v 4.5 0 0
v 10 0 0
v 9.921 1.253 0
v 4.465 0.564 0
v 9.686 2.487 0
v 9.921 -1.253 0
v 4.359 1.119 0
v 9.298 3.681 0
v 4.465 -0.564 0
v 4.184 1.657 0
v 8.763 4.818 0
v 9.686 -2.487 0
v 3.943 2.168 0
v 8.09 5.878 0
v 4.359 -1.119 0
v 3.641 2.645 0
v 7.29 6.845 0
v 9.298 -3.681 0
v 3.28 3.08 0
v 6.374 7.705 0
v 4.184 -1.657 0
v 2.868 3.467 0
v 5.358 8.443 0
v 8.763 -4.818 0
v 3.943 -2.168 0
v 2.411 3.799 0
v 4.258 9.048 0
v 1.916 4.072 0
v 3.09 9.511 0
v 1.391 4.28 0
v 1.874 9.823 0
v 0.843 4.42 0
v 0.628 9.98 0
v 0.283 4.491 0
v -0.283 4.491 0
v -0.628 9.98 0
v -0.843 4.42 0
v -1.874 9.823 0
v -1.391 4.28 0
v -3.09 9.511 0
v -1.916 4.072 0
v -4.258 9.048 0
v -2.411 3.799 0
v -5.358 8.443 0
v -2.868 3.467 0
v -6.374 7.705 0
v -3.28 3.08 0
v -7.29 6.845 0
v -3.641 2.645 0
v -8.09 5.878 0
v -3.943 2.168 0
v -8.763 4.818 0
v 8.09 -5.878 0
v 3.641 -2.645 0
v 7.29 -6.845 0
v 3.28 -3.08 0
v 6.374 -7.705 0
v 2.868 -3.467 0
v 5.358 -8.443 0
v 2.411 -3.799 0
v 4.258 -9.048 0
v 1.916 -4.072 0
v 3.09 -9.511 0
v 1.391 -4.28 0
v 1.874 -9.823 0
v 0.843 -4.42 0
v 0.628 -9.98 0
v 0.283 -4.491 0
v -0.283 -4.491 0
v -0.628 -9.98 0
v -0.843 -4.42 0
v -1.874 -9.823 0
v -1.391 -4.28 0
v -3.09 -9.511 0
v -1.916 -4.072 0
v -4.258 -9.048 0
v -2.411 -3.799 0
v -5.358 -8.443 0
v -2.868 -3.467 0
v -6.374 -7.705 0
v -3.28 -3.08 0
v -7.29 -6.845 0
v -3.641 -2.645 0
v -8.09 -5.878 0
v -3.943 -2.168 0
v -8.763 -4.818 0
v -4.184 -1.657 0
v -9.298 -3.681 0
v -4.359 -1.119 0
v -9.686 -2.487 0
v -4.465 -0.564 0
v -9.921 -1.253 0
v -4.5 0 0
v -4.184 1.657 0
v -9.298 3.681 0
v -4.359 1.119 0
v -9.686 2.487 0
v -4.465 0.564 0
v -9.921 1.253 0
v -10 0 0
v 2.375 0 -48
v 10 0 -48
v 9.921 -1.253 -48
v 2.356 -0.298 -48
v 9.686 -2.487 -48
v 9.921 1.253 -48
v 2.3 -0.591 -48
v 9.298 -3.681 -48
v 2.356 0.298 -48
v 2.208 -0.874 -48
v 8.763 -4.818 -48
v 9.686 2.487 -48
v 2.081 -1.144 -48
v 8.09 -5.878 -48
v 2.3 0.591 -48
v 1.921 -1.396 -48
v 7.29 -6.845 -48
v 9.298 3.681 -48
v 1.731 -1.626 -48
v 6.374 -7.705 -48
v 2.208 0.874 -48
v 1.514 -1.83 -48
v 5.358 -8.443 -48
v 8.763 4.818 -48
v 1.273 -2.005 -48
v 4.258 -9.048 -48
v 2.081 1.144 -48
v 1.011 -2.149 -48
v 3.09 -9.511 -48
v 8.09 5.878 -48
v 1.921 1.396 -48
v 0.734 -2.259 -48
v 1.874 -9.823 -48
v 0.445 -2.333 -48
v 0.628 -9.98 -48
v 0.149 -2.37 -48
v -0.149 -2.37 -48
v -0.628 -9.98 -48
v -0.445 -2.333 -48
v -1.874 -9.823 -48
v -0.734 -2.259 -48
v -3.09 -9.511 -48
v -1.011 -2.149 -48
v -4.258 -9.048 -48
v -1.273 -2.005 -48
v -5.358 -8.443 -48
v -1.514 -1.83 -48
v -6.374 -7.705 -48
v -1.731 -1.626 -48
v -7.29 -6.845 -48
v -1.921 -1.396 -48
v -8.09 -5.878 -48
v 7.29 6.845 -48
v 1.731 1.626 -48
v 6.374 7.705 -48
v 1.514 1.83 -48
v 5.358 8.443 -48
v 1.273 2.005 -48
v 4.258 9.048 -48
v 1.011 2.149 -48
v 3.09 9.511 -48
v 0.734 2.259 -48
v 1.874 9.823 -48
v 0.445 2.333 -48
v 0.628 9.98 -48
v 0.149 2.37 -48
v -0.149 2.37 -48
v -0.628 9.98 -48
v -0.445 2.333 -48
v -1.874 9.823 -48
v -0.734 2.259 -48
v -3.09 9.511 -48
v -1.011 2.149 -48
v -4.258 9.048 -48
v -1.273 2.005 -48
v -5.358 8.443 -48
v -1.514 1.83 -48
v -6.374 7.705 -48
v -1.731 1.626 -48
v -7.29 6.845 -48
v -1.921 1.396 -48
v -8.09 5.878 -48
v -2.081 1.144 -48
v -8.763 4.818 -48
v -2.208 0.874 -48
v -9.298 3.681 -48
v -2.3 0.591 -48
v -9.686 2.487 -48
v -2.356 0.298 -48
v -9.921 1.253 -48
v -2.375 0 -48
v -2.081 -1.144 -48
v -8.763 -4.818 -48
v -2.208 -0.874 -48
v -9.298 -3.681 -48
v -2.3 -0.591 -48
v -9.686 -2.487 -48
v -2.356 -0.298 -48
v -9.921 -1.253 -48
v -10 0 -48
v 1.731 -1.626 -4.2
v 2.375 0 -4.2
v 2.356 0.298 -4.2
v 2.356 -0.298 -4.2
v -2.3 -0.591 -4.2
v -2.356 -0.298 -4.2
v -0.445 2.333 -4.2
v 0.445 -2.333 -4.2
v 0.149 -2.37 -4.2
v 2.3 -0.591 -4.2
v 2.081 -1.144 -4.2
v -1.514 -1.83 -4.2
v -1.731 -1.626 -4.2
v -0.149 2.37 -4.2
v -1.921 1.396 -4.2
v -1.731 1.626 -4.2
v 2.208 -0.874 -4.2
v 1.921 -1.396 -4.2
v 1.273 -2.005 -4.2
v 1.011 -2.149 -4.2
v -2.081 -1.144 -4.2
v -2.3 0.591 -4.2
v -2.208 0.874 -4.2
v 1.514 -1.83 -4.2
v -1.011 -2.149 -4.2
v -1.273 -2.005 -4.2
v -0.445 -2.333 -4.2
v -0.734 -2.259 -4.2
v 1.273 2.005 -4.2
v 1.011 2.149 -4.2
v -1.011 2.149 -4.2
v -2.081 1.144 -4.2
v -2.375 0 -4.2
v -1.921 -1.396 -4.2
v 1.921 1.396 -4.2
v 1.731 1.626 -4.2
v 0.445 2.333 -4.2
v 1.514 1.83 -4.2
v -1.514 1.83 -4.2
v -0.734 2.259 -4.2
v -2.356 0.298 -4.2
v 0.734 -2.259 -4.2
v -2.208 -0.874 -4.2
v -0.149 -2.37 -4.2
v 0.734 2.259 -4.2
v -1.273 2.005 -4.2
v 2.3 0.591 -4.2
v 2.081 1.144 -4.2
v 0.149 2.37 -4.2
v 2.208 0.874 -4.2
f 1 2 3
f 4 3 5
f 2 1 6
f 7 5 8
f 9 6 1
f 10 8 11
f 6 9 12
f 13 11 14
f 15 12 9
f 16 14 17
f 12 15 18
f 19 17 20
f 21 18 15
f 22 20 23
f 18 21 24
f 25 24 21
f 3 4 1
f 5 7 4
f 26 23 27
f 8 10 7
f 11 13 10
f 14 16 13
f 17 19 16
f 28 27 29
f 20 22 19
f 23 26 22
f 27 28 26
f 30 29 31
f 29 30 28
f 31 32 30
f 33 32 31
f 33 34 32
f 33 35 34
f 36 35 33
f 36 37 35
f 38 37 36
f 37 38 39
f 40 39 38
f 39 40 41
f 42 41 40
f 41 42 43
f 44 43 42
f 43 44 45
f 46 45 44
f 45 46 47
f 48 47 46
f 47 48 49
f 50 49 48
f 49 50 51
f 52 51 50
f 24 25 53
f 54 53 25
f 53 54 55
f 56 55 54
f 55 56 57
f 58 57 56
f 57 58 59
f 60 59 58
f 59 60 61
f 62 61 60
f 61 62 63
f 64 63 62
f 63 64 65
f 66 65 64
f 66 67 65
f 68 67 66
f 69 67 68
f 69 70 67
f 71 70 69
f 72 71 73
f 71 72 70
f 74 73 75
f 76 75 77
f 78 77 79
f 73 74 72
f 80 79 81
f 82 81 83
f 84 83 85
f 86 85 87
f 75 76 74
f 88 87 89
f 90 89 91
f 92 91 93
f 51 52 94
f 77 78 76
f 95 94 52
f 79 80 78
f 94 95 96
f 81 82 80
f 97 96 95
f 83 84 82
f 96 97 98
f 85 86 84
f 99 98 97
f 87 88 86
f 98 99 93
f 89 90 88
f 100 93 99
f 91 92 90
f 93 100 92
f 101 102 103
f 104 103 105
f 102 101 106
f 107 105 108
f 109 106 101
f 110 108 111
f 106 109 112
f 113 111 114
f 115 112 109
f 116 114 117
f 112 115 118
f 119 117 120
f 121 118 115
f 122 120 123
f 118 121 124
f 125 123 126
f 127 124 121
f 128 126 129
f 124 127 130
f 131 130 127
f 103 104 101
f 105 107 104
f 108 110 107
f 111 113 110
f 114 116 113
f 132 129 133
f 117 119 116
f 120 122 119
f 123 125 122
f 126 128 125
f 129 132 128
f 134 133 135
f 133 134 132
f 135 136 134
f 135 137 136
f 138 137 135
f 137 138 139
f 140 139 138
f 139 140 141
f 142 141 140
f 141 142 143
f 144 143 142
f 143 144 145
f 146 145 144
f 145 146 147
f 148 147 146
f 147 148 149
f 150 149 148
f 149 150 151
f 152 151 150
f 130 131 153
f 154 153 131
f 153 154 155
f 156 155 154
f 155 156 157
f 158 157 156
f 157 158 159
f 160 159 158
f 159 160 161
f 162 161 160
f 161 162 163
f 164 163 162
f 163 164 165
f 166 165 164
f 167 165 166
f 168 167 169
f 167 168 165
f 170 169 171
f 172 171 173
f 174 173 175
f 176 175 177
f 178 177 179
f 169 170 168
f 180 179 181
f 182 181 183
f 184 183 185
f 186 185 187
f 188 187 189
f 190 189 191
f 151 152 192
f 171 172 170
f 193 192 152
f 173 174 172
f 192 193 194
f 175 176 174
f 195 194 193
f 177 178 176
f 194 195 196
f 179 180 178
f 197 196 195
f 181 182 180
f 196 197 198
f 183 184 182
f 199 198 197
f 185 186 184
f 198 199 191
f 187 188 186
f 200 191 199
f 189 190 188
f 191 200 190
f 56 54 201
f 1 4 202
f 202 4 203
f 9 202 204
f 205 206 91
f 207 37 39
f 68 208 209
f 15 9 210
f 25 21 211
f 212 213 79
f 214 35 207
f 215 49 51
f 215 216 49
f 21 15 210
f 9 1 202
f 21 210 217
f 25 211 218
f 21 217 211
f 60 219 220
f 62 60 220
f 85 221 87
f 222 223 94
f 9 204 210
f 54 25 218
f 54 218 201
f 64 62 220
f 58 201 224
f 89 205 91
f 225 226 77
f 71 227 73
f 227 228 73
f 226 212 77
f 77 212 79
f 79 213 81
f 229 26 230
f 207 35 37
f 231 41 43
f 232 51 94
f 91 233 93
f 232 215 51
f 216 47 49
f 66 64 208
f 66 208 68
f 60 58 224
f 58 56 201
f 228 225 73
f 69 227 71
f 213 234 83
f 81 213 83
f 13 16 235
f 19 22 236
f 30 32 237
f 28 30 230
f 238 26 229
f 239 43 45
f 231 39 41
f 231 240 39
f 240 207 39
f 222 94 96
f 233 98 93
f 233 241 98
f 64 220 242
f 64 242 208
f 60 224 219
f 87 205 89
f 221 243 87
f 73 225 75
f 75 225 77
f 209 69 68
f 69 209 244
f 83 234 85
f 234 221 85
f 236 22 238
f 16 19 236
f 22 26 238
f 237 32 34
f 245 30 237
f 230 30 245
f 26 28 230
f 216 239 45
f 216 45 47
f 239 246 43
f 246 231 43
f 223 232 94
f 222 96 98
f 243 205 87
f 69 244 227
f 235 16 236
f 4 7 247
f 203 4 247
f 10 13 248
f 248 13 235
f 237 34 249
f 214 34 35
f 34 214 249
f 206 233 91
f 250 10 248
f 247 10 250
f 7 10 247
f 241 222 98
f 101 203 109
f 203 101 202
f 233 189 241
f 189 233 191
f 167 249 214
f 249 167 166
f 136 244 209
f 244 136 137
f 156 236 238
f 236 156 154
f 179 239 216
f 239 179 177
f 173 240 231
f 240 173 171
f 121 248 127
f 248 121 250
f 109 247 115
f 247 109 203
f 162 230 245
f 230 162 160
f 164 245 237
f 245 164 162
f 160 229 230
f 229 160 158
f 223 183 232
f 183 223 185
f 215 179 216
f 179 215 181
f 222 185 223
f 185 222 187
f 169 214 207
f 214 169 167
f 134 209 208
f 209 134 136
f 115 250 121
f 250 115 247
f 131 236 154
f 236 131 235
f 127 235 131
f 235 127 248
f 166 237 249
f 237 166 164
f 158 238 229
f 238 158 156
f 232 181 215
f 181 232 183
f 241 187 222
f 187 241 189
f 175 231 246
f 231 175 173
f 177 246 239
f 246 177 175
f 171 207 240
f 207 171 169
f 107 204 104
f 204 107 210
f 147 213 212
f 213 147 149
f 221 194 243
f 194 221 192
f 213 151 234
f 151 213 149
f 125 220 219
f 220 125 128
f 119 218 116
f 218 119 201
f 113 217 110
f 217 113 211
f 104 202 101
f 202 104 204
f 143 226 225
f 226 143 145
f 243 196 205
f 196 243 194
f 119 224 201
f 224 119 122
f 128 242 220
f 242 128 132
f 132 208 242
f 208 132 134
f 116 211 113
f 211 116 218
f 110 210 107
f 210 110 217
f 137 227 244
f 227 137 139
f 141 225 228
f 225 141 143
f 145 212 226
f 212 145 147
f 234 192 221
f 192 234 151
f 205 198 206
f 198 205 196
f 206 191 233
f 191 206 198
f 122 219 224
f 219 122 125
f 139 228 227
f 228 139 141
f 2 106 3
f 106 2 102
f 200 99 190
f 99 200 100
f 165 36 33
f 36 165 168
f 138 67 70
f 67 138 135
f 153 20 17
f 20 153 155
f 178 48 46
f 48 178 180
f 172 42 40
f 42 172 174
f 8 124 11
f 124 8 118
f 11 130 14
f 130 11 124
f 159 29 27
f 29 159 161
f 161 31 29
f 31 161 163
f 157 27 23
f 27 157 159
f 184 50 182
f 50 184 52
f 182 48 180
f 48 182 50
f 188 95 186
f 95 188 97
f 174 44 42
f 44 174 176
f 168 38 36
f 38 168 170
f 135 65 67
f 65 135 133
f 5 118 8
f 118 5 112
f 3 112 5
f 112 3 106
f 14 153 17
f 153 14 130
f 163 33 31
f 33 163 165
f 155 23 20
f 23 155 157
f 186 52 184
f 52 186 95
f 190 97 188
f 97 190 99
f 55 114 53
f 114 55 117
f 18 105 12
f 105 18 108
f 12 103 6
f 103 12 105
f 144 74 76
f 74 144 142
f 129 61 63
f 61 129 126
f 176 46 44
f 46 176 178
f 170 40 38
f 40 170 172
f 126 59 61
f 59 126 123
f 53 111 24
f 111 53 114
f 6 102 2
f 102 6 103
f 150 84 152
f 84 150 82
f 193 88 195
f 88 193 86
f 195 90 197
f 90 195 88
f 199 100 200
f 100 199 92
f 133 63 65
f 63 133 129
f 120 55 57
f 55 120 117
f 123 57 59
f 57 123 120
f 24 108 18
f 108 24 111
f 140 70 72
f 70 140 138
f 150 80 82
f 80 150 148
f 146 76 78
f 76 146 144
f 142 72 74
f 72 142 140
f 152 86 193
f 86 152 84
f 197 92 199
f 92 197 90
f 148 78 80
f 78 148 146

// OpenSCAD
$fn = 50;


difference() {
	union() {
		translate(v = [0, 0, -48.0000000000]) {
			cylinder(h = 48, r = 10.0000000000);
		}
		cylinder(h = 0, r = 13.0000000000);
	}
	union() {
		translate(v = [0, 0, 0]) {
			rotate(a = [0, 0, 0]) {
				difference() {
					union() {
						#translate(v = [0, 0, -48.0000000000]) {
							cylinder(h = 48, r = 2.2500000000);
						}
						#translate(v = [0, 0, -4.2000000000]) {
							cylinder(h = 4.2000000000, r = 10.0000000000, r1 = 2.3750000000, r2 = 4.5000000000);
						}
						#translate(v = [0, 0, -48.0000000000]) {
							cylinder(h = 48, r = 2.3750000000);
						}
						#translate(v = [0, 0, -48.0000000000]) {
							cylinder(h = 48, r = 2.2500000000);
						}
					}
					union();
				}
			}
		}
	}
}
